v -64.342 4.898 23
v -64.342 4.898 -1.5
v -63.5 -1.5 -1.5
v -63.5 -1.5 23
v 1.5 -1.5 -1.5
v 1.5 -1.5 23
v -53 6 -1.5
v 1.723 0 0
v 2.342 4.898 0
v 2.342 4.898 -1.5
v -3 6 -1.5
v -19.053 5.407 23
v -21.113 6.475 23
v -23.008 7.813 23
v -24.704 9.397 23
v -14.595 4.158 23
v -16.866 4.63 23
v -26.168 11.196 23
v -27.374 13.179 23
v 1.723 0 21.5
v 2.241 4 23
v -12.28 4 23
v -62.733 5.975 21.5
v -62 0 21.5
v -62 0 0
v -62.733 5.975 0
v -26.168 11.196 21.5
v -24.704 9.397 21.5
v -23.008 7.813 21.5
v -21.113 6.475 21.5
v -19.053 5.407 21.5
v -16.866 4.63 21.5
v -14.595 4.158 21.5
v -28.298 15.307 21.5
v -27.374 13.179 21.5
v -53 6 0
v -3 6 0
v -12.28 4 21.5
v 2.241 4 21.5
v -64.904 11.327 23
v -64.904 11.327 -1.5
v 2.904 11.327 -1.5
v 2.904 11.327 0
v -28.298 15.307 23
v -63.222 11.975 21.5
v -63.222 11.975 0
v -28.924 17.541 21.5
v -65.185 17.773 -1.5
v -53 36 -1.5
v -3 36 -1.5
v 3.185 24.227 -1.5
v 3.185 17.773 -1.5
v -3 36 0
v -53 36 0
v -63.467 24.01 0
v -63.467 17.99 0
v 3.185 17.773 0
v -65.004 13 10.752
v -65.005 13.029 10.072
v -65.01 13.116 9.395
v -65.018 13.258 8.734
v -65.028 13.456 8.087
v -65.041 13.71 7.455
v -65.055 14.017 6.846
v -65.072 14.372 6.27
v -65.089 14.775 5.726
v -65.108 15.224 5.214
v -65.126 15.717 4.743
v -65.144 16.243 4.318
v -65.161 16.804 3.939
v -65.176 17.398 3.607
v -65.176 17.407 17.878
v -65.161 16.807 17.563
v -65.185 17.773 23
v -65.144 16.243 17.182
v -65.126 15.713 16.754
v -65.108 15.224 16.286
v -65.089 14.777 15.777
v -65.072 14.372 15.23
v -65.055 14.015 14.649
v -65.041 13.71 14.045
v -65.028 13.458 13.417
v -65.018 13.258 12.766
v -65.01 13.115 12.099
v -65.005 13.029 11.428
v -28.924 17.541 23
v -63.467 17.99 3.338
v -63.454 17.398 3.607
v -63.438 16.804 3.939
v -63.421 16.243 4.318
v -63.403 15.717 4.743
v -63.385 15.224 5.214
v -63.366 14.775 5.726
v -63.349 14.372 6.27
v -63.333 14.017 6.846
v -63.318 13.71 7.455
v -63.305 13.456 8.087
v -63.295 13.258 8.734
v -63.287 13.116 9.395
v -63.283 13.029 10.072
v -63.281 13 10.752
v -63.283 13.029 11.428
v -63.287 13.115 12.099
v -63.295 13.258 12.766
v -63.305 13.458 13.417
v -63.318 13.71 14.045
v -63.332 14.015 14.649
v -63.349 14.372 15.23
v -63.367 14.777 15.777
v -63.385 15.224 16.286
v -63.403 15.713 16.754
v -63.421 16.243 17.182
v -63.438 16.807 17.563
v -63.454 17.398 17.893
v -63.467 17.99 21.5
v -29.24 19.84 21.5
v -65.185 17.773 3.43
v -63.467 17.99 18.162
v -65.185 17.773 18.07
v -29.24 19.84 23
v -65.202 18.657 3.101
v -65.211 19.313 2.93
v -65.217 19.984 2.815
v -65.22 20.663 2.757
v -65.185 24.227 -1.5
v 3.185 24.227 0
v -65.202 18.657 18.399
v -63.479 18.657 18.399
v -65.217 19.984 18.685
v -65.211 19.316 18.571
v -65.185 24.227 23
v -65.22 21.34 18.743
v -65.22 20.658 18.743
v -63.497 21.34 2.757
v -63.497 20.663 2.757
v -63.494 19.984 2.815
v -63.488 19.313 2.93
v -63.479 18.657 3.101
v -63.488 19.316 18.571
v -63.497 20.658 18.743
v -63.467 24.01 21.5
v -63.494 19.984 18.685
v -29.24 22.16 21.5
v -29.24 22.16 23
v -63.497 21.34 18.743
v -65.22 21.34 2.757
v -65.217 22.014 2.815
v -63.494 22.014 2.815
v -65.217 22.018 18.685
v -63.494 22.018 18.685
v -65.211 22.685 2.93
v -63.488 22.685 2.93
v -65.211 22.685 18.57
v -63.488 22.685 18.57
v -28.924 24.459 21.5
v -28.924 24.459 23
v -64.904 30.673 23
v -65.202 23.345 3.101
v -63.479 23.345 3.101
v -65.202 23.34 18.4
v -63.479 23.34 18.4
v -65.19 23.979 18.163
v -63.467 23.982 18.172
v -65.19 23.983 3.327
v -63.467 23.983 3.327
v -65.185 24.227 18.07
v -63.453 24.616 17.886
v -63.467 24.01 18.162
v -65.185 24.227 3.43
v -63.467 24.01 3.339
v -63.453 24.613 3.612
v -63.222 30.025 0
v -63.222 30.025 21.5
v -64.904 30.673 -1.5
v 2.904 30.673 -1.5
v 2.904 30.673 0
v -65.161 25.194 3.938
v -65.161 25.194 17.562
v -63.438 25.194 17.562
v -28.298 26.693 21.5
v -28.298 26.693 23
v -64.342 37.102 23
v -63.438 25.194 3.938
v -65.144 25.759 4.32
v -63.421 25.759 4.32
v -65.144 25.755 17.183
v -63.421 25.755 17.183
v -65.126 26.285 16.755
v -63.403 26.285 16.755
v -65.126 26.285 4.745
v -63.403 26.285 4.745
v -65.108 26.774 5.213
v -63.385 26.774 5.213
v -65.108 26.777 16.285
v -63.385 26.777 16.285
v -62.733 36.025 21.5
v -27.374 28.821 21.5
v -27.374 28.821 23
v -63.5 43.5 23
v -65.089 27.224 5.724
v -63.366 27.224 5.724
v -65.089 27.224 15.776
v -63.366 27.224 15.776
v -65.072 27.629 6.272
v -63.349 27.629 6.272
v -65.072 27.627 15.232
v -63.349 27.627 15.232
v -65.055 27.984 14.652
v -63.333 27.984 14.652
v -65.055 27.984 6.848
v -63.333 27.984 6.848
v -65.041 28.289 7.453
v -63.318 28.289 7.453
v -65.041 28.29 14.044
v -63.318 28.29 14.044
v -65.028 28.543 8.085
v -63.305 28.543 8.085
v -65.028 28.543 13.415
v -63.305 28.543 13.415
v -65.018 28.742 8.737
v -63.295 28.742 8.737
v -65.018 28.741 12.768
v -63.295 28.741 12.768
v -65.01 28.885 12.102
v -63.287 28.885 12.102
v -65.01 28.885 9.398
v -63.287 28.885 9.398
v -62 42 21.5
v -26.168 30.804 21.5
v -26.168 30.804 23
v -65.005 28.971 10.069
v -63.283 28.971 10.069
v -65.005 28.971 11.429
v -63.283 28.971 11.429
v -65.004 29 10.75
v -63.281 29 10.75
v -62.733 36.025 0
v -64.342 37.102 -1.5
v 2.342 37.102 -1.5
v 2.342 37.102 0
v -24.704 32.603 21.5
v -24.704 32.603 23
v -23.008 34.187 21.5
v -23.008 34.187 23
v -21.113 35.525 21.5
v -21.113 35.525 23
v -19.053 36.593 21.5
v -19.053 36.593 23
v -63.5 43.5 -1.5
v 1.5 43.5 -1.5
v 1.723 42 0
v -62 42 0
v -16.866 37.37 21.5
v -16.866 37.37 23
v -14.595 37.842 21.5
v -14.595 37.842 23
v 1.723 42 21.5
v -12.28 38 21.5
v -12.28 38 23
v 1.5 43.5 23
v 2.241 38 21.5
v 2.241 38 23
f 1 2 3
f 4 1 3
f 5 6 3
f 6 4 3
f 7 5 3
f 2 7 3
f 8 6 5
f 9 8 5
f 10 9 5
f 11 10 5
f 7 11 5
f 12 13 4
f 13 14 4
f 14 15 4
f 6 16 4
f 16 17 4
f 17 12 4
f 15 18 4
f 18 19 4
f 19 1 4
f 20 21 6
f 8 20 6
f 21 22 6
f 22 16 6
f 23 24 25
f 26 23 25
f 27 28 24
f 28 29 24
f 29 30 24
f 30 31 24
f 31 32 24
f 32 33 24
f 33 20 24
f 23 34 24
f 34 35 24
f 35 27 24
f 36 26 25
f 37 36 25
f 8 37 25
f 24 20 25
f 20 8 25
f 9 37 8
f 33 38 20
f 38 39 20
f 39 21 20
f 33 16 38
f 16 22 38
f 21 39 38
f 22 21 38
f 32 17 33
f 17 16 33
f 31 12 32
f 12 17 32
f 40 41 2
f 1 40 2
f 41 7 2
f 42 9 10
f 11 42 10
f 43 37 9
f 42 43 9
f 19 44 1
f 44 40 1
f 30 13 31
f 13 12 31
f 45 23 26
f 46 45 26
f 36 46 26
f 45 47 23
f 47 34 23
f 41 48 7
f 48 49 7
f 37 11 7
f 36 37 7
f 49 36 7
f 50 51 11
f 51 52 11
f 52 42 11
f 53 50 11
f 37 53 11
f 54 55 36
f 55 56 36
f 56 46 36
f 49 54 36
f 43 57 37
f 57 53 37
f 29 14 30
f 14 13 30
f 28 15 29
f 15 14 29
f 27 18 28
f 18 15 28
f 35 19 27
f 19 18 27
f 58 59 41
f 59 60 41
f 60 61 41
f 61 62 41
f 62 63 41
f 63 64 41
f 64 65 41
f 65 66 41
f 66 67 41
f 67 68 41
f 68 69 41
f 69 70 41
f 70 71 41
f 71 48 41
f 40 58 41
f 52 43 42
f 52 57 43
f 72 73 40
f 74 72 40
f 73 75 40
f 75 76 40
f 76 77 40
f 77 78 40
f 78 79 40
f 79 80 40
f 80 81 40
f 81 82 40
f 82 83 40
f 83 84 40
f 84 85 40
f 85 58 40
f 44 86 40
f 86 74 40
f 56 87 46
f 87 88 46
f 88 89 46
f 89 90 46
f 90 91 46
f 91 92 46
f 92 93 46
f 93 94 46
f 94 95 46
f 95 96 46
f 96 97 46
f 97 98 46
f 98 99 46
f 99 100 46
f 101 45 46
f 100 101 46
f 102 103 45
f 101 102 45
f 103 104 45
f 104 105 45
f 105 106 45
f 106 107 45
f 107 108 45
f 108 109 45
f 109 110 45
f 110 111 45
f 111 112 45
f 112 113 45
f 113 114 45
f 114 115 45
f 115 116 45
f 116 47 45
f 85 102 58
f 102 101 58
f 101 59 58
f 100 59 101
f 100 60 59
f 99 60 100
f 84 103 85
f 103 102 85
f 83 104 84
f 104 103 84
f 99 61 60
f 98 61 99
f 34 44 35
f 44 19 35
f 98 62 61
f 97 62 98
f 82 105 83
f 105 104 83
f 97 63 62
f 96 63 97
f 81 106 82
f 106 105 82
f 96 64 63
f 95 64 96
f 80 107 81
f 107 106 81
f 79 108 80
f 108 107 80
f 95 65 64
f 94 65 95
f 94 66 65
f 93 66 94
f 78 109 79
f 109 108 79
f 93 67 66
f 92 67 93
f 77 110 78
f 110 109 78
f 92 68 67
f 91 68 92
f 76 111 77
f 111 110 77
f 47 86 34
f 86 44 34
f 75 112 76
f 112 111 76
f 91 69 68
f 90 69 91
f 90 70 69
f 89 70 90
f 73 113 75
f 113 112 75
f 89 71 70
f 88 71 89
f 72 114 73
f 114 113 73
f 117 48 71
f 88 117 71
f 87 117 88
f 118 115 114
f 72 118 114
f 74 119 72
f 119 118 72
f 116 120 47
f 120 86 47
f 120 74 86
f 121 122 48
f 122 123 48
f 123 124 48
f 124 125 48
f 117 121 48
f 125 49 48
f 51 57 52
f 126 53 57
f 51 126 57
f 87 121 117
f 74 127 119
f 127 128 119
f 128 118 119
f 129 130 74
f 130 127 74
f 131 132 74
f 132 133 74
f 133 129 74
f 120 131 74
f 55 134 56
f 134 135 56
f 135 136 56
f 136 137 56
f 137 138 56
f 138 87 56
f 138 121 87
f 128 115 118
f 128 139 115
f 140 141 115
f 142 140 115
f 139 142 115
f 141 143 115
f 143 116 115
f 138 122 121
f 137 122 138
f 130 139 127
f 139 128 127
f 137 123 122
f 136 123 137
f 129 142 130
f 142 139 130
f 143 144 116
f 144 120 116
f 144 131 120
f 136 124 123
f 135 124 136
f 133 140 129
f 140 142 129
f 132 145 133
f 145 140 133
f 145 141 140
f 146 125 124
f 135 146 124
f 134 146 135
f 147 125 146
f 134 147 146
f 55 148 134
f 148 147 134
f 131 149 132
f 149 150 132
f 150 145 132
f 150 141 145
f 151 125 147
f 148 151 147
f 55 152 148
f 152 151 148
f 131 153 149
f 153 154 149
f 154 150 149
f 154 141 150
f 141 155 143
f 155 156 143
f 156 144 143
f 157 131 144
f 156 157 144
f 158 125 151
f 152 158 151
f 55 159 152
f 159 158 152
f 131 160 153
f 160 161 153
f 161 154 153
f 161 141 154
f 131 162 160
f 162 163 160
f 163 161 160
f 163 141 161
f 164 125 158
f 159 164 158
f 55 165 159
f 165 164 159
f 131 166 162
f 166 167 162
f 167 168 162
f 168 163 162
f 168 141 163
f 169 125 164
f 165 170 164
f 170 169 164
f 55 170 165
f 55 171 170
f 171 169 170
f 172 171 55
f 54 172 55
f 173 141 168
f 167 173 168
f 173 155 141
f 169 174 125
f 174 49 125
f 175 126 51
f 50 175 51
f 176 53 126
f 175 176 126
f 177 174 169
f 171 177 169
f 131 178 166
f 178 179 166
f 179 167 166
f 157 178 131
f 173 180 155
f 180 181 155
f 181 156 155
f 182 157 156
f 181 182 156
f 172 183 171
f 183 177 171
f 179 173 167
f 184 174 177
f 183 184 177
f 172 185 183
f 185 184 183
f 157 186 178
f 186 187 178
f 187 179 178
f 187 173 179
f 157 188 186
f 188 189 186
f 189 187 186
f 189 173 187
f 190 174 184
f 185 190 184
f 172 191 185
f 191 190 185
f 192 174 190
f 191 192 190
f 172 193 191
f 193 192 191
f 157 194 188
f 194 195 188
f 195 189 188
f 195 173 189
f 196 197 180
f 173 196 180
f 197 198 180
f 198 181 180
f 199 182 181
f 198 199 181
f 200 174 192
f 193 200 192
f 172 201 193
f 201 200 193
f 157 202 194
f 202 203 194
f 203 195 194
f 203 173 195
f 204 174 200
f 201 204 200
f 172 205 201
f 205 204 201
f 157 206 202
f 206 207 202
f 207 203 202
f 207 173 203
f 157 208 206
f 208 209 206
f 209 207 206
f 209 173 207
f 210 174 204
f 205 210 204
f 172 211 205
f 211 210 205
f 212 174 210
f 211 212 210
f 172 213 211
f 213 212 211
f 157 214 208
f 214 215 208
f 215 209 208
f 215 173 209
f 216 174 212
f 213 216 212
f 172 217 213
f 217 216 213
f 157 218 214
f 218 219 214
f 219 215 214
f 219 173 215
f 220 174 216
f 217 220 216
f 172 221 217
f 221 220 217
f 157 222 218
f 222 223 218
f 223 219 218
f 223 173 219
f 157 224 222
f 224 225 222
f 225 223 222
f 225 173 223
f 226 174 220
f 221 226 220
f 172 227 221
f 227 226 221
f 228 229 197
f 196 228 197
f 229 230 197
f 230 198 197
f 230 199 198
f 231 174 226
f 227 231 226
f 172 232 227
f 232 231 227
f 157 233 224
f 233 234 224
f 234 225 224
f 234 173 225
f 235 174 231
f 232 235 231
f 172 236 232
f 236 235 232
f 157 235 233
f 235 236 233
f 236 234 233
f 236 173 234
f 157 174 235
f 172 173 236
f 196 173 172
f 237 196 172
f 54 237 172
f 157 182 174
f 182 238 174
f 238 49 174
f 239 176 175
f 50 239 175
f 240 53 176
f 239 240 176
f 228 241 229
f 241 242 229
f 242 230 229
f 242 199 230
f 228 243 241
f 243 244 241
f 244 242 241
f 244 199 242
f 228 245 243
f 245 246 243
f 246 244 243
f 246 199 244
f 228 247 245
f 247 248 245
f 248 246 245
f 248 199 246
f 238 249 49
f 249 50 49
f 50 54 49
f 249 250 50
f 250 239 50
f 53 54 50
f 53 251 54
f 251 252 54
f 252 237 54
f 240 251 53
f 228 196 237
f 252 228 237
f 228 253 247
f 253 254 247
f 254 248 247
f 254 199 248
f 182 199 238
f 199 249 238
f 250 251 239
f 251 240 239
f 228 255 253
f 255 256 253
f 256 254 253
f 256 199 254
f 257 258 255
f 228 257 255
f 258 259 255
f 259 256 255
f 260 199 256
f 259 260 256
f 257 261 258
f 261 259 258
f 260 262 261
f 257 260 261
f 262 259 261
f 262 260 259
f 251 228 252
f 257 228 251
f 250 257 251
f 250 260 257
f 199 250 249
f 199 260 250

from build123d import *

# Parameters (mm, degrees)
SALIENTE_EXTRUIR1_DEPTH    = 21.5
SALIENTE_EXTRUIR2_DEPTH    = 1.5
SALIENTE_EXTRUIR3_START    = 1.5
CROQUIS3_W                 = 50
CROQUIS3_H                 = 30
SALIENTE_EXTRUIR3_DEPTH    = 1.5
CORTAR_EXTRUIR1_START      = -1.5
CORTAR_EXTRUIR1_DEPTH      = 1.5
CORTAR_EXTRUIR2_DEPTH      = 1.5
CORTAR_EXTRUIR2_DEPTH_BACK = 3
CROQUIS7_W                 = 21.5
CROQUIS7_H                 = 42
CORTAR_EXTRUIR3_DEPTH      = 10
CORTAR_EXTRUIR3_DEPTH_BACK = 10
CROQUIS8_R                 = 8


with BuildPart() as part:
    # Croquis1 → Saliente-Extruir1 (new body)
    with BuildSketch(Plane.XY):
        with BuildLine():
            Line((-63.5, 43.5), (1.5, 43.5))
            ThreePointArc((1.5, 43.5), (3.220302161, 21), (1.5, -1.5))
            Line((1.5, -1.5), (-63.5, -1.5))
            ThreePointArc((-63.5, -1.5), (-65.220302161, 21), (-63.5, 43.5))
        make_face()
        with BuildLine():
            Line((0, 0), (-62, 0))
            ThreePointArc((-62, 0), (-63.497440295, 21), (-62, 42))
            Line((-62, 42), (0, 42))
            ThreePointArc((0, 42), (1.497440295, 21), (0, 0))
        make_face(mode=Mode.SUBTRACT)
    extrude(amount=SALIENTE_EXTRUIR1_DEPTH)

    # Croquis2 → Saliente-Extruir2 (add)
    with BuildSketch(Plane.XY.offset(21.5)):
        with BuildLine():
            Line((-63.5, 43.5), (1.5, 43.5))
            ThreePointArc((1.5, 43.5), (3.220302161, 21), (1.5, -1.5))
            Line((1.5, -1.5), (-63.5, -1.5))
            ThreePointArc((-63.5, -1.5), (-65.220302161, 21), (-63.5, 43.5))
        make_face()
    extrude(amount=SALIENTE_EXTRUIR2_DEPTH)

    # Croquis3 → Saliente-Extruir3 (add)
    with BuildSketch(Plane(origin=(0, 0, 0), x_dir=(-1, 0, 0), z_dir=(0, 0, -1)).offset(SALIENTE_EXTRUIR3_START)):
        with BuildLine():
            Line((-1.5, 43.5), (63.5, 43.5))
            ThreePointArc((63.5, 43.5), (65.220302161, 21), (63.5, -1.5))
            Line((63.5, -1.5), (-1.5, -1.5))
            ThreePointArc((-1.5, -1.5), (-3.220302161, 21), (-1.5, 43.5))
        make_face()
        with Locations((28, 21)):
            Rectangle(CROQUIS3_W, CROQUIS3_H, mode=Mode.SUBTRACT)
    extrude(amount=-SALIENTE_EXTRUIR3_DEPTH)

    # Croquis4 → Cortar-Extruir1 (cut)
    with BuildSketch(Plane.XY.offset(23).offset(CORTAR_EXTRUIR1_START)):
        with BuildLine():
            Line((-12.279697839, 38), (2.240708907, 38))
            ThreePointArc((2.240708907, 38), (3.220302161, 21), (2.240708907, 4))
            Line((2.240708907, 4), (-12.279697839, 4))
            ThreePointArc((-12.279697839, 4), (-29.279697839, 21), (-12.279697839, 38))
        make_face()
    extrude(amount=CORTAR_EXTRUIR1_DEPTH, mode=Mode.SUBTRACT)

    # Croquis7 → Cortar-Extruir2 (cut, two sides: drawn at the far end of the back side and taken through both)
    with BuildSketch(Plane.ZY.offset(-1.5).offset(-CORTAR_EXTRUIR2_DEPTH_BACK)):
        with Locations((10.75, 21)):
            Rectangle(CROQUIS7_W, CROQUIS7_H)
    extrude(amount=CORTAR_EXTRUIR2_DEPTH + CORTAR_EXTRUIR2_DEPTH_BACK, mode=Mode.SUBTRACT)

    # Croquis8 → Cortar-Extruir3 (cut, two sides: drawn at the far end of the back side and taken through both)
    with BuildSketch(Plane.ZY.offset(63.5).offset(-CORTAR_EXTRUIR3_DEPTH_BACK)):
        with Locations((10.75, 21)):
            Circle(CROQUIS8_R)
    extrude(amount=CORTAR_EXTRUIR3_DEPTH + CORTAR_EXTRUIR3_DEPTH_BACK, mode=Mode.SUBTRACT)


solid = part.part
